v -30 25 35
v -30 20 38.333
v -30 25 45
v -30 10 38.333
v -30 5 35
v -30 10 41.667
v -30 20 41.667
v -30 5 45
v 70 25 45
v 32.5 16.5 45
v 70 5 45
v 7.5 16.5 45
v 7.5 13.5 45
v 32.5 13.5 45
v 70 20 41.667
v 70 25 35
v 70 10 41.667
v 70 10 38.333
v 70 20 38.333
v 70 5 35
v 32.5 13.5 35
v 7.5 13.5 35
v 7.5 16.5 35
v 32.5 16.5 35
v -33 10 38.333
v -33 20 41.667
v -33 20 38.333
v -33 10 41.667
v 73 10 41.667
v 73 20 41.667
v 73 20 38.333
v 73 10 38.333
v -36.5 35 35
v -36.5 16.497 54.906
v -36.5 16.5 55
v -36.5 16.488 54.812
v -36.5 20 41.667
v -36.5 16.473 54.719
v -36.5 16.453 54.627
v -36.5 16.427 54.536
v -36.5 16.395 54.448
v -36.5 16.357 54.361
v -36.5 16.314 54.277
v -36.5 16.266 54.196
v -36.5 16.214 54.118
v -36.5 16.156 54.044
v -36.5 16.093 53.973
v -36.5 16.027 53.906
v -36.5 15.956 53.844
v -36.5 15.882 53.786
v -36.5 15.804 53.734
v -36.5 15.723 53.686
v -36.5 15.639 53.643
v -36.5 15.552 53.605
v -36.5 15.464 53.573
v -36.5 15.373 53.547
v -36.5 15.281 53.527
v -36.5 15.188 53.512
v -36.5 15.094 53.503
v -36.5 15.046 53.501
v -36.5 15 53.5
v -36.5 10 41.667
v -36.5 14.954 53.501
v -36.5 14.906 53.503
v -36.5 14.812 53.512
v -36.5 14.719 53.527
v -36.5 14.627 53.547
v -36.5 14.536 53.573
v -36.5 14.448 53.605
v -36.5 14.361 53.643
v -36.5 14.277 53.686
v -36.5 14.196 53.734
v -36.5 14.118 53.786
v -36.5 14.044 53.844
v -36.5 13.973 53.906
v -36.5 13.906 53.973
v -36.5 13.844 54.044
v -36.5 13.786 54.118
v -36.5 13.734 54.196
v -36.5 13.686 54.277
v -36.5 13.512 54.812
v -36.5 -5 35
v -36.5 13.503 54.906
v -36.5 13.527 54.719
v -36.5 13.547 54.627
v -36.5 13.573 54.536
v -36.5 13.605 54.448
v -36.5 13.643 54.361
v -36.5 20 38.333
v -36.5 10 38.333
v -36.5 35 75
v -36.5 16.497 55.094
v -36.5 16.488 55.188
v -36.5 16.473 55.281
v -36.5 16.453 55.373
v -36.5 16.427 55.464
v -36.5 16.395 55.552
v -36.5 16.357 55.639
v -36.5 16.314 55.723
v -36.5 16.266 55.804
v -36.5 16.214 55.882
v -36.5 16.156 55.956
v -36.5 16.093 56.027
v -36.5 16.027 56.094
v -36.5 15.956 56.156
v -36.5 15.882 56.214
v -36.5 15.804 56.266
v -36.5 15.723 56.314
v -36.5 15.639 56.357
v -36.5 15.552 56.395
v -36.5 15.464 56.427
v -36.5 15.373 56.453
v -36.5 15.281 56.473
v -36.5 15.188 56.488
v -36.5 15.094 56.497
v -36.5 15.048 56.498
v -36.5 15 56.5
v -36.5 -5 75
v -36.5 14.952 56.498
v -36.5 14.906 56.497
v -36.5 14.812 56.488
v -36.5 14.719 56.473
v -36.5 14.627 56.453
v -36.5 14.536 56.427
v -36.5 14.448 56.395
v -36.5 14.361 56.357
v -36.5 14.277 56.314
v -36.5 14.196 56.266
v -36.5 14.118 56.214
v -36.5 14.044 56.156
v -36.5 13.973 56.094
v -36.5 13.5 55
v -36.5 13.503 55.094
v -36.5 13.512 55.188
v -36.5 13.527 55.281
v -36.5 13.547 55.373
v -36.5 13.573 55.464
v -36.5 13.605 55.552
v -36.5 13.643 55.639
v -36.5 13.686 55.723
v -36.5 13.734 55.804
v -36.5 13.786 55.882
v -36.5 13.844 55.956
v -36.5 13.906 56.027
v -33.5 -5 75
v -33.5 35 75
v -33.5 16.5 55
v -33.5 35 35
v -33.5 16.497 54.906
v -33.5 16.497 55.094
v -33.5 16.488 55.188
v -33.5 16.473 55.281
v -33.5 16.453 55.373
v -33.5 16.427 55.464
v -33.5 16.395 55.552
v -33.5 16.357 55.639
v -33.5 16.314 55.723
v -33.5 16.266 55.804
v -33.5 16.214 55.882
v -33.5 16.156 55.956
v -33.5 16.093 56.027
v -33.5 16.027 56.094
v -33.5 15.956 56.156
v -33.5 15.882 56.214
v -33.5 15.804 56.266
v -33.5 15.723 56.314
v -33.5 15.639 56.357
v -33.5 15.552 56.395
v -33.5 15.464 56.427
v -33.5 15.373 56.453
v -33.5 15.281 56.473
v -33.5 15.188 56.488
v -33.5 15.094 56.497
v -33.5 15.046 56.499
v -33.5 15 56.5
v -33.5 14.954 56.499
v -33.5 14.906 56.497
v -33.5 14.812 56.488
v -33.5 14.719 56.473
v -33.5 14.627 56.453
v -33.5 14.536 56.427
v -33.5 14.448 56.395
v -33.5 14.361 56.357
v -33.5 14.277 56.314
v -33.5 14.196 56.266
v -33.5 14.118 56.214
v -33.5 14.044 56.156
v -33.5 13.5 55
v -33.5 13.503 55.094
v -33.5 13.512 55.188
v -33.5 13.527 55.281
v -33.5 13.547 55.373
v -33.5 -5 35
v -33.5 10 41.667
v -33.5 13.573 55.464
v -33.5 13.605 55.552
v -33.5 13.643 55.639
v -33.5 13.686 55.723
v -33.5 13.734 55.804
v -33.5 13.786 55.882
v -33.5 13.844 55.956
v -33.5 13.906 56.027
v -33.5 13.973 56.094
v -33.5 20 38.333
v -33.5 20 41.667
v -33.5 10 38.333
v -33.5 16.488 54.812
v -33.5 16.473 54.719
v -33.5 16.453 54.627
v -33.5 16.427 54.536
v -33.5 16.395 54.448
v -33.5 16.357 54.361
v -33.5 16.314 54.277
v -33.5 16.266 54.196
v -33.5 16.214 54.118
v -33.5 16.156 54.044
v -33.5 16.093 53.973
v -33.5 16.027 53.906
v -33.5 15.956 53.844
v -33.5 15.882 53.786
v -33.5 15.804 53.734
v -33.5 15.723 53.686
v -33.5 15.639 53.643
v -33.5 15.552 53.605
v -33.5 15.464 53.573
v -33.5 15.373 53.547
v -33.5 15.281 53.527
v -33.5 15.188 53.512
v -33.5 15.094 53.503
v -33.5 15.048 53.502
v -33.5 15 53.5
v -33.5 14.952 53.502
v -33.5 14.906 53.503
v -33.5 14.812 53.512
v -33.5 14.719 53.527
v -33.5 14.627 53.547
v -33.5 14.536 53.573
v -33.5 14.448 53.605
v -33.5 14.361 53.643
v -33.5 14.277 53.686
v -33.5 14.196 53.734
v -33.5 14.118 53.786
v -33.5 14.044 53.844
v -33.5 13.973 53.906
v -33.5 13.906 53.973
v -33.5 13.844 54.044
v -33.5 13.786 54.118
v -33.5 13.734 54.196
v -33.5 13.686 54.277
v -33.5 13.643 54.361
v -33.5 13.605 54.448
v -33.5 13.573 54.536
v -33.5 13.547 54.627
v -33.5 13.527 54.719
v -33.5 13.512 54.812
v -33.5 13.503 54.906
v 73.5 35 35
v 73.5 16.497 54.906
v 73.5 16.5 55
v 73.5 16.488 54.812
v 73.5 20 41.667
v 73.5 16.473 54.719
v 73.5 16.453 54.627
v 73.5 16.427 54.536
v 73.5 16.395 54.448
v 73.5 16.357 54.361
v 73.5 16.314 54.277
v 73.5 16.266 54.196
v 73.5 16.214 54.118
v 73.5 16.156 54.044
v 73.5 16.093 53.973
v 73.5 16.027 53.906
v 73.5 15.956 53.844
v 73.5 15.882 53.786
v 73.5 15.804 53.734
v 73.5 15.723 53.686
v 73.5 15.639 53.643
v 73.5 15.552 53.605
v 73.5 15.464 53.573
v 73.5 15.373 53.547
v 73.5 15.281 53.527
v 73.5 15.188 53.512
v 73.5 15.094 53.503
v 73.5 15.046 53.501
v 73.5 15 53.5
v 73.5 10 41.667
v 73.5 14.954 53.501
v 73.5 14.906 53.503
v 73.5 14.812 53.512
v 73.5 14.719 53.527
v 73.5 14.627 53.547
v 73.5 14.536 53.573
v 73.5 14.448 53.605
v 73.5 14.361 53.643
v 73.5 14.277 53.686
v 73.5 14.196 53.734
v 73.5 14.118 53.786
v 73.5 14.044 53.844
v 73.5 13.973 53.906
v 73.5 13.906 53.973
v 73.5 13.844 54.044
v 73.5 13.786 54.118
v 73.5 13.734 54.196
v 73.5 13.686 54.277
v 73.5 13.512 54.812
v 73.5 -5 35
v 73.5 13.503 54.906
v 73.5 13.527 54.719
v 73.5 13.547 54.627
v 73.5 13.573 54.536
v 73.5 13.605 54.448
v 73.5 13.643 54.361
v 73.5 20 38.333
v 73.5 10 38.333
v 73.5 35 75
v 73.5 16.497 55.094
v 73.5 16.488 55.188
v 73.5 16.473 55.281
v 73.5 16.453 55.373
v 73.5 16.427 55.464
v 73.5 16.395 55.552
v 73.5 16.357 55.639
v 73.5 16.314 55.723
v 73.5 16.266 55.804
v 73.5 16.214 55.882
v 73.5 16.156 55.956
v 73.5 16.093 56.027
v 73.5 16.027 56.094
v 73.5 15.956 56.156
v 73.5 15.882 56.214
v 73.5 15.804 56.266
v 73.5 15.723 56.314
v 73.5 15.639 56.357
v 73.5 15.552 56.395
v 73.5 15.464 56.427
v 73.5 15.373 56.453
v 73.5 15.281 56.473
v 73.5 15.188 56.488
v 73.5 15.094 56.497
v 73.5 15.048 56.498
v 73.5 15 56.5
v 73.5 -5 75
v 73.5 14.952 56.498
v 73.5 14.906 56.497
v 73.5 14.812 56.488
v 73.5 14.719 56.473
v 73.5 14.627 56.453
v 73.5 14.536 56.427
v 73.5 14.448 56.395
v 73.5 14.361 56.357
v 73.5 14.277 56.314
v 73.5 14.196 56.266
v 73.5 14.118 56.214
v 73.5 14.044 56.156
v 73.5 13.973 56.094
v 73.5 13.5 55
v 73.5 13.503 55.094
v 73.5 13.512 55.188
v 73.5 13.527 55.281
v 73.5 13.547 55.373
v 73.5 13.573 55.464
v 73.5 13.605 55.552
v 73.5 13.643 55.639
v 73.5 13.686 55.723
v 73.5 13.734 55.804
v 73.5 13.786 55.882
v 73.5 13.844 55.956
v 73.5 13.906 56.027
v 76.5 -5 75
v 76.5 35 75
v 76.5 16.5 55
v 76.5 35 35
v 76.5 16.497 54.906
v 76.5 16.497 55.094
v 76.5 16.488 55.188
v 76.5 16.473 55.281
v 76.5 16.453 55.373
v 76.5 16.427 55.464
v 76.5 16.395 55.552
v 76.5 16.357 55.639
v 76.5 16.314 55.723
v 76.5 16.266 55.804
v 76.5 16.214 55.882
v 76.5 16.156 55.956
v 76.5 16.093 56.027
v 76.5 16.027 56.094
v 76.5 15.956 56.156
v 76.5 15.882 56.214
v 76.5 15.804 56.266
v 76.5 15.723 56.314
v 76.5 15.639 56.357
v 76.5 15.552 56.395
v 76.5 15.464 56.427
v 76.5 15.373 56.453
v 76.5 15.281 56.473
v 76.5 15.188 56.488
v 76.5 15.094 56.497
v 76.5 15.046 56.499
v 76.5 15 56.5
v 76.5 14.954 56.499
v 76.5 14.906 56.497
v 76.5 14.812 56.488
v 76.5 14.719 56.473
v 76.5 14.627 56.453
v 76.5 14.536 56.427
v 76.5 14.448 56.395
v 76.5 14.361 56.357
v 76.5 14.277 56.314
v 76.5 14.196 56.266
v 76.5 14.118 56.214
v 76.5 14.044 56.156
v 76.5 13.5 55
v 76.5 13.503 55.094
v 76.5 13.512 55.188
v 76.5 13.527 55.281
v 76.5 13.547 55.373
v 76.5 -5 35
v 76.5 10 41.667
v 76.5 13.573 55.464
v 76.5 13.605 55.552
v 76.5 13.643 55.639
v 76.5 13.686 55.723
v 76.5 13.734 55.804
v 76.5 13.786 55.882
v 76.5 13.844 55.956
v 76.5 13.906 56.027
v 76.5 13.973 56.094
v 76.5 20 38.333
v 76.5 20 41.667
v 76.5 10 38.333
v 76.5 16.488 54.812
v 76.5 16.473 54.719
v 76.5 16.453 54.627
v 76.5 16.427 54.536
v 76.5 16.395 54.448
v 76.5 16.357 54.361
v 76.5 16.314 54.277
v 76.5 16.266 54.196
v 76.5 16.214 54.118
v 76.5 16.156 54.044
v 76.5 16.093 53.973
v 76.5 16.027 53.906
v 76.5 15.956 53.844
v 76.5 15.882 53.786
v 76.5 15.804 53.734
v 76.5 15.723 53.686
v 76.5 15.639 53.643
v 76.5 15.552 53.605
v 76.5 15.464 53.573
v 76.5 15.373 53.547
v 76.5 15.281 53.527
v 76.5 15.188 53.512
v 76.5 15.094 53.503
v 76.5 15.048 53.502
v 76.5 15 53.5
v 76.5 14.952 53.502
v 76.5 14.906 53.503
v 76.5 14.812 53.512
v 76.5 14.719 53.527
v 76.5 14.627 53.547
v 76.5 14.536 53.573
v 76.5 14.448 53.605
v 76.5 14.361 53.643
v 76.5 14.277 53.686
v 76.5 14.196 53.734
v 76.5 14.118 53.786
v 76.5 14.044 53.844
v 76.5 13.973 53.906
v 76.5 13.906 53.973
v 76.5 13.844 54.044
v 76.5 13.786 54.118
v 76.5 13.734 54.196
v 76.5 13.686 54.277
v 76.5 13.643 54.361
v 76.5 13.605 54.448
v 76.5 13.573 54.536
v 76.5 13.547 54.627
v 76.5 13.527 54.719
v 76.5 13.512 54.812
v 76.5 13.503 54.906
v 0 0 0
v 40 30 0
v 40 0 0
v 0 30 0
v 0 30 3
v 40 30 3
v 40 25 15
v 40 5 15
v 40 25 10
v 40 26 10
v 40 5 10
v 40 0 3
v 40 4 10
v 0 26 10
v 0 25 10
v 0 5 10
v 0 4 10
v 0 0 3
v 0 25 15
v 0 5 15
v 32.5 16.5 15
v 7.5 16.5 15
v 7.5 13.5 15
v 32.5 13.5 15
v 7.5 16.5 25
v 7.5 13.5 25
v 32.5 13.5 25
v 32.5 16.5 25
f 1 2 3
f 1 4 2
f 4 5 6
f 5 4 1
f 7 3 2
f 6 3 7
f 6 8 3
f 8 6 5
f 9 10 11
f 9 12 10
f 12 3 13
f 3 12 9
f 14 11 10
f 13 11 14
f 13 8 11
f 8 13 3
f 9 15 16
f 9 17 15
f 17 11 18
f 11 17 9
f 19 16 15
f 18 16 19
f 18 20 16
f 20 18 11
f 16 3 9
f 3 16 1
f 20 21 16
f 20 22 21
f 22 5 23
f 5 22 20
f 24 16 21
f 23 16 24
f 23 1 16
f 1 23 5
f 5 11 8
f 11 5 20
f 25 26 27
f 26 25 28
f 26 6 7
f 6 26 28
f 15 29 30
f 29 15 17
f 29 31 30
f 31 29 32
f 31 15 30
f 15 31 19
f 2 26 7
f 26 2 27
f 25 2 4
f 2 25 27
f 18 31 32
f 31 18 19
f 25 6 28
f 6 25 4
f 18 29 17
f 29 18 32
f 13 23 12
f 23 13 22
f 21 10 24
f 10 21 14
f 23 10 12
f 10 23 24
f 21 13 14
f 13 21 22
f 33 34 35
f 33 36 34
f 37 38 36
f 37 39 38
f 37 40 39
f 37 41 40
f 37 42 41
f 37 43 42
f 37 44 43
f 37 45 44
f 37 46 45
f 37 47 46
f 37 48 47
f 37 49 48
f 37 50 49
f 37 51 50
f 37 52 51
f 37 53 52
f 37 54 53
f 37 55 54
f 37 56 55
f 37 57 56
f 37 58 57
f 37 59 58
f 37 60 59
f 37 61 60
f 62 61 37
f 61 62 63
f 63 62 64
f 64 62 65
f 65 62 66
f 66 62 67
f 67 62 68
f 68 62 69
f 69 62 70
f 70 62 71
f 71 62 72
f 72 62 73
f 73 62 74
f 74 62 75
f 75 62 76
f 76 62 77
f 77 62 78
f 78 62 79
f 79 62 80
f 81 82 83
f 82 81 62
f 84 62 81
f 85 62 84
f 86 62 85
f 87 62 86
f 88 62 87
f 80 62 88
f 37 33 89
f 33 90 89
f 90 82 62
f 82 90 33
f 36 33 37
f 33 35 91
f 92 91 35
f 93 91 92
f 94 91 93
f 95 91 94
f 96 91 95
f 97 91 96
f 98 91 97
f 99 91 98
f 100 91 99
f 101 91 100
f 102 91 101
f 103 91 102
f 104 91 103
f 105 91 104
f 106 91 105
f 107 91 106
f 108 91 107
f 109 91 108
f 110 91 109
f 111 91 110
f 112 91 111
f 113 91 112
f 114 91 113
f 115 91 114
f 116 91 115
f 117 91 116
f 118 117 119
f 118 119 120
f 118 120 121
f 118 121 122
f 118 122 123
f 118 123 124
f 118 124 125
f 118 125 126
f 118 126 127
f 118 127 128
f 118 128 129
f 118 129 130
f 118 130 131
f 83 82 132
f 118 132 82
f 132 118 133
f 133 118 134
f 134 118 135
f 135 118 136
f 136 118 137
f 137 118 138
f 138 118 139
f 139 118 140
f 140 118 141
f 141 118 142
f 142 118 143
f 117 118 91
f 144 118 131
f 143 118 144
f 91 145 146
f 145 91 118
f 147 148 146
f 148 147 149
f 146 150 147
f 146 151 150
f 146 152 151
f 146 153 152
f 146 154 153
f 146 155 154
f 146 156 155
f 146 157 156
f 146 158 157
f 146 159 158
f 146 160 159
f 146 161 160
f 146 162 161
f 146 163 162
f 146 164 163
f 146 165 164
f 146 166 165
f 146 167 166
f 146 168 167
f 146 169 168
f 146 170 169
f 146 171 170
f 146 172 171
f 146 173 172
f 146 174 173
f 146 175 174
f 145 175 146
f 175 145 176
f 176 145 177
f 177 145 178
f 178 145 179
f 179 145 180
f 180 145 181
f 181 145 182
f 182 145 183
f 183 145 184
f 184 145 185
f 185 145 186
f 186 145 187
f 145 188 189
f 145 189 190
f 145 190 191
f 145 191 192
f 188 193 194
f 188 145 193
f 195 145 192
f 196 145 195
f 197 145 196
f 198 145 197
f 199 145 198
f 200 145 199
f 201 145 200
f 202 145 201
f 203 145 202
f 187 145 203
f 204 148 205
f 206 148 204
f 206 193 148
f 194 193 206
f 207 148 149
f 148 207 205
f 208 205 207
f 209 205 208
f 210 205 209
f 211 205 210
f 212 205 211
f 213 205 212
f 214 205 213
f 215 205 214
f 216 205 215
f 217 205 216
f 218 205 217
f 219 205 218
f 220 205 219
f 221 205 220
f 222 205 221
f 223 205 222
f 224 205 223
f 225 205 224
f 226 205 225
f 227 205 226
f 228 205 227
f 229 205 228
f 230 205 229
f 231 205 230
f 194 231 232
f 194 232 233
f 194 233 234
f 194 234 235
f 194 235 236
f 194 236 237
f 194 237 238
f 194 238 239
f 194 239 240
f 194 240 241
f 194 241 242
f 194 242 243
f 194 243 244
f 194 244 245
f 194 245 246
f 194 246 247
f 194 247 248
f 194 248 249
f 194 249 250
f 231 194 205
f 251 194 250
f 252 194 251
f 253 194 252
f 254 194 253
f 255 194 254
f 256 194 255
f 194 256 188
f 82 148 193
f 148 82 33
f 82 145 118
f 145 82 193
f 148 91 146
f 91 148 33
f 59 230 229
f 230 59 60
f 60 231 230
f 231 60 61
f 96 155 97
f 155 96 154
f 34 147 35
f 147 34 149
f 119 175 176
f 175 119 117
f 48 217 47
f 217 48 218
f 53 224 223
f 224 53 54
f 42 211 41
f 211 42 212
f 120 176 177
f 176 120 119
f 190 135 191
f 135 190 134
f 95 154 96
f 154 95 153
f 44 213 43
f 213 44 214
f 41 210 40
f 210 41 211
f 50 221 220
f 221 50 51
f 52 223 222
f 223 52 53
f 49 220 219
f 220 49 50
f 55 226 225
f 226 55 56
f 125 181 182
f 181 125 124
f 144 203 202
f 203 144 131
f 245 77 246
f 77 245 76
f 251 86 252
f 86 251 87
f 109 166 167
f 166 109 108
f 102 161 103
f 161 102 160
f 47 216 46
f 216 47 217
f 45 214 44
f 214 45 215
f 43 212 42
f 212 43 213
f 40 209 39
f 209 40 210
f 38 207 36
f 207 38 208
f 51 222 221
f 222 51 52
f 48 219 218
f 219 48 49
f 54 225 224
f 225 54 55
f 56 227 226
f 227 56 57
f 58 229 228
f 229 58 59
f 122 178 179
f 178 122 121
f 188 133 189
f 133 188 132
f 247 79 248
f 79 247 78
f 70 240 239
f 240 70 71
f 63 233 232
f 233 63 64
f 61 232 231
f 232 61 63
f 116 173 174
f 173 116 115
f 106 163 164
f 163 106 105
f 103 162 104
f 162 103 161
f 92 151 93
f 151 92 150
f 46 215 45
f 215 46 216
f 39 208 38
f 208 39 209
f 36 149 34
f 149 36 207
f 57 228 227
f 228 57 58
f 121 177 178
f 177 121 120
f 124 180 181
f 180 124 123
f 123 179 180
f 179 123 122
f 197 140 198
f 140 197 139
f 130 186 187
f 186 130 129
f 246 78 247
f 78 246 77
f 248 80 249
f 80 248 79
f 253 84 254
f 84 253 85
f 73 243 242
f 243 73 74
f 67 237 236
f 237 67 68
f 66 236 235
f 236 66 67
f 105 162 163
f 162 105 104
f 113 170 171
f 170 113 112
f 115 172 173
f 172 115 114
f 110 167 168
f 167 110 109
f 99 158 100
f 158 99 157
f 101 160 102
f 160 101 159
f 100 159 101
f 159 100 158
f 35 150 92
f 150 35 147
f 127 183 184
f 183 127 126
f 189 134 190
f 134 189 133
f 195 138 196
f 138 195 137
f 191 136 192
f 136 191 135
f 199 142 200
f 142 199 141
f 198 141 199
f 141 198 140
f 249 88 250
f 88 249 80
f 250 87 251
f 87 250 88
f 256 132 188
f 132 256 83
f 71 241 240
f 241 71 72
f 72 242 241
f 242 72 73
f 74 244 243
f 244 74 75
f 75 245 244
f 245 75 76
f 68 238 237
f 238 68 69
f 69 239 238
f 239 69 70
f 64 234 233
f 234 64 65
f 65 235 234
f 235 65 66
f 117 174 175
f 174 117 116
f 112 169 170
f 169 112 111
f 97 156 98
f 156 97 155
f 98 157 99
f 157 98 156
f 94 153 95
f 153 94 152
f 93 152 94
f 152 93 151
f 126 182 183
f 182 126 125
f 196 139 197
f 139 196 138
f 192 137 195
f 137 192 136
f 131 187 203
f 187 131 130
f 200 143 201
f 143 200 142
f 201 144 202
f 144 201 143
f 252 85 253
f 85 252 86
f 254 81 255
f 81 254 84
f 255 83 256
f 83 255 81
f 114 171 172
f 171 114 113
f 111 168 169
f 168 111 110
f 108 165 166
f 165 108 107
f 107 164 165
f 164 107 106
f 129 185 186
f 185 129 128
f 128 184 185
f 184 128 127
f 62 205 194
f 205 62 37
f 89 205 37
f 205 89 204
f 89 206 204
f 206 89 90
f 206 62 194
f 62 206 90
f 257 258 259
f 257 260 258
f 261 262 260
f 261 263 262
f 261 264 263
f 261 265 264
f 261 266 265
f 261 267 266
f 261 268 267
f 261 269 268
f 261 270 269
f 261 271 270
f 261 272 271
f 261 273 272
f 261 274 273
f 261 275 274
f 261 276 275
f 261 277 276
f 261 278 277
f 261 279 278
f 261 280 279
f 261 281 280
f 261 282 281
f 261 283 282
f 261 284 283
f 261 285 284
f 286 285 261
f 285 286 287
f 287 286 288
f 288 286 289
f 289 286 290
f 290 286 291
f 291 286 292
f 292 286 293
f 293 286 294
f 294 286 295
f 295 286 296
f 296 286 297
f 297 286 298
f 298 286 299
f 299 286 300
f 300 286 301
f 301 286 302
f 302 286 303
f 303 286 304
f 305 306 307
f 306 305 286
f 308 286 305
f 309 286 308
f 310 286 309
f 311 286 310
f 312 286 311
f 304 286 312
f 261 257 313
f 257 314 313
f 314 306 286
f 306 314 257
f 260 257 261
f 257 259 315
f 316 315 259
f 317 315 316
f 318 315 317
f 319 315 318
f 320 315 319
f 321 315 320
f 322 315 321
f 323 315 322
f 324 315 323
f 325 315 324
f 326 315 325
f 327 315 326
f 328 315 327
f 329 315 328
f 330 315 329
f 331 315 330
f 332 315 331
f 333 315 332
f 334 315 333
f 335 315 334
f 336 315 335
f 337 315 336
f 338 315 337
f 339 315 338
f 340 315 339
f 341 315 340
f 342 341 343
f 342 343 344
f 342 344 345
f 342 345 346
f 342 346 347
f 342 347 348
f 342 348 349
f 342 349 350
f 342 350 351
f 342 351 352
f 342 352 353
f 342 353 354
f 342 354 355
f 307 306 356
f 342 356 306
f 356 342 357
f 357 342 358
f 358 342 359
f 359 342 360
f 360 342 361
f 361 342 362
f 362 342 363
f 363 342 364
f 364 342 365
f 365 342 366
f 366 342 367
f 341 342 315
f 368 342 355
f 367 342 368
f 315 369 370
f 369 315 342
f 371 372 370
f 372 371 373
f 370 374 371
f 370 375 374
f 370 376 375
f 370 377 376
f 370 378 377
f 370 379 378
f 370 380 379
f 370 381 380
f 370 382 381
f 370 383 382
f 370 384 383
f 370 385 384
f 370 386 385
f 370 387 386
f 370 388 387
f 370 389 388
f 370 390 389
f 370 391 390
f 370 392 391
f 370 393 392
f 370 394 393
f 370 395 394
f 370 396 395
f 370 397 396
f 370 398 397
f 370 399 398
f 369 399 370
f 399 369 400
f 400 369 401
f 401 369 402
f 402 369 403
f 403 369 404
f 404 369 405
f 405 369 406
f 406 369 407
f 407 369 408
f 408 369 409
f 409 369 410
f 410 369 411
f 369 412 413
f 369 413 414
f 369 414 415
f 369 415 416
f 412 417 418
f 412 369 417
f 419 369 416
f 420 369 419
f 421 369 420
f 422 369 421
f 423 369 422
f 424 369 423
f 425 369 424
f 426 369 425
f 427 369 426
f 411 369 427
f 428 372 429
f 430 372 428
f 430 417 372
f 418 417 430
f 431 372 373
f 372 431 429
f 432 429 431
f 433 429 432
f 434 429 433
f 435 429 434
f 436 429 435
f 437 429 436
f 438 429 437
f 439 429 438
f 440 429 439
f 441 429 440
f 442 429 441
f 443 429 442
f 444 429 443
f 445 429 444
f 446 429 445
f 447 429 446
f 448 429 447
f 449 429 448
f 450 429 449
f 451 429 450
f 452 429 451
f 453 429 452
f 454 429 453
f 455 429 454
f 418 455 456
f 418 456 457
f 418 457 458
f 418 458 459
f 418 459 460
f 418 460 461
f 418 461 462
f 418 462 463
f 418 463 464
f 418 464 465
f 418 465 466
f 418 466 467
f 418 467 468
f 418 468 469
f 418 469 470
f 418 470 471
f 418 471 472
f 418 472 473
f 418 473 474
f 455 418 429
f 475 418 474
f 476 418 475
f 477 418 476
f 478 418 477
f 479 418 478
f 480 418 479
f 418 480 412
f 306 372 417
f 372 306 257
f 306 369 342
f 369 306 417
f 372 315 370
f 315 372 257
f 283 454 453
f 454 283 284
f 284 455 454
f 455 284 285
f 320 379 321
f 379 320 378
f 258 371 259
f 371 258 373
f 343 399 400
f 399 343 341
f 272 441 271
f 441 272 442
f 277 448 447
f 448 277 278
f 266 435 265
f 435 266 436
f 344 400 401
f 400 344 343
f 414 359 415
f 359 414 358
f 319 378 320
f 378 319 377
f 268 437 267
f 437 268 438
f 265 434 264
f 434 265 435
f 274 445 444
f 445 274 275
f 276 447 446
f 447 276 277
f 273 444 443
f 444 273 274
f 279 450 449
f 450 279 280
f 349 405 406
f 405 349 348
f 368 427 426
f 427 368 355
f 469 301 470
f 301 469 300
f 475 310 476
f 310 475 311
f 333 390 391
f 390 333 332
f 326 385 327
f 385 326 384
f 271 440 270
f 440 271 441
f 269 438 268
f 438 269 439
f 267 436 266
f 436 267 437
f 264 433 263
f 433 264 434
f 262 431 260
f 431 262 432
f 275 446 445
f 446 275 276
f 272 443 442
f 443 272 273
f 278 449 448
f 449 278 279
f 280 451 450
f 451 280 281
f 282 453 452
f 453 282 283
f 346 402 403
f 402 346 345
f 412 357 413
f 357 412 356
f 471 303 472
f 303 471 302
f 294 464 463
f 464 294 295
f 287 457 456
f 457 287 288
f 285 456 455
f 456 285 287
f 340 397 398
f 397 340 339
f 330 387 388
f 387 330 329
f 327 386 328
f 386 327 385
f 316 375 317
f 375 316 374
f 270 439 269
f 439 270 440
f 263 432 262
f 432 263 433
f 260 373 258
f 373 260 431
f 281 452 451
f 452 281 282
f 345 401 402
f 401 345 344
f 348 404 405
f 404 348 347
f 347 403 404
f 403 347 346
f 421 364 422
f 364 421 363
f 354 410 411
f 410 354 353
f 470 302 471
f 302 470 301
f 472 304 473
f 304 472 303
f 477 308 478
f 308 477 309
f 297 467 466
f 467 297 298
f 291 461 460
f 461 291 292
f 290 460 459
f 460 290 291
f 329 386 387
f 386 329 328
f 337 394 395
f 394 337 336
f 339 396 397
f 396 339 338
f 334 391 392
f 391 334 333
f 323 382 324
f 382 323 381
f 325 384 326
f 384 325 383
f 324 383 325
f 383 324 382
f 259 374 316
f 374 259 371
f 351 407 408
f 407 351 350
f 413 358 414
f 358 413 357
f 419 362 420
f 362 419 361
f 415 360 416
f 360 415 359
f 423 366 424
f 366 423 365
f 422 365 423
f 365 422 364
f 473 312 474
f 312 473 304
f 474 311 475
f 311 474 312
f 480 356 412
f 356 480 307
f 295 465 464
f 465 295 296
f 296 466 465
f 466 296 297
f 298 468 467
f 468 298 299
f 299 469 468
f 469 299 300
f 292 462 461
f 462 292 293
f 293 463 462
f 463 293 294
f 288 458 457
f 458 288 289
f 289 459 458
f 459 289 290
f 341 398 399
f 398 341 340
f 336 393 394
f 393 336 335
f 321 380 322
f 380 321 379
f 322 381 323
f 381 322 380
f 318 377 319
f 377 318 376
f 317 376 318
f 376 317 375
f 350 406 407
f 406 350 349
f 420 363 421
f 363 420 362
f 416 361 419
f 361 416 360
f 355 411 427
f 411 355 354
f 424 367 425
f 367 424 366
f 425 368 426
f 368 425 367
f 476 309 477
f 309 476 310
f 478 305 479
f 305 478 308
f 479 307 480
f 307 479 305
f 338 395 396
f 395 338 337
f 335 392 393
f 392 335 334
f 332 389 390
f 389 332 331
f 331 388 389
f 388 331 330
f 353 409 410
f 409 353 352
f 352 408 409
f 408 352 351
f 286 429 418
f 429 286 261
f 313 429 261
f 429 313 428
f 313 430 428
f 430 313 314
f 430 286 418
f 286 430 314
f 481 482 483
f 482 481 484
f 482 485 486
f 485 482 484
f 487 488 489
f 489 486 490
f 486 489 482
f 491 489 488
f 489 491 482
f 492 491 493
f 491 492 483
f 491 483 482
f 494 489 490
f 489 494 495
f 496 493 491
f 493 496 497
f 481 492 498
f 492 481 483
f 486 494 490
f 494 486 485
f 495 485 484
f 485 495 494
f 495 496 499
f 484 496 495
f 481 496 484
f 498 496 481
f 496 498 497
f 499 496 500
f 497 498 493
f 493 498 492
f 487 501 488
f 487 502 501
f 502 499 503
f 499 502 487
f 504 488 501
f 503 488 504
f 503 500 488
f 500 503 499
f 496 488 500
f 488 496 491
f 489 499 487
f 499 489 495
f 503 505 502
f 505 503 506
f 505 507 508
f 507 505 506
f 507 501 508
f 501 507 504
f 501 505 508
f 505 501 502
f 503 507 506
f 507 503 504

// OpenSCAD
module aronde(longueur,h1,h_tot,largeur_base,largeur_haut)
{
hauteur_base_1=h1;
hauteur_base_2=h_tot;

dy=(largeur_base-largeur_haut)*0.5;

rotate([90,0,90])
linear_extrude(height=longueur)
{
polygon(points = [[0,0],[largeur_base,0],
                  [largeur_base,hauteur_base_1],
                   [largeur_base-dy,hauteur_base_2],
                  [dy,hauteur_base_2],[0,hauteur_base_1]]);
}
}

// queue d'aronde
h_aronde=10;
L_aronde=40;
largueur_aronde=30;
aronde(L_aronde,3,h_aronde,largueur_aronde,22);

// rehausse
l_tot=100;
longueur_barre = l_tot;
largeur_barre=20;

h_rehausse=5;

dx=-(longueur_barre-L_aronde)/2;
dy=(largueur_aronde-largeur_barre)/2;
ecart=20;
translate([0,dy,h_aronde])  
cube([L_aronde,largeur_barre,h_rehausse]);

// tenon de la rehausse
h_tenon=10;
l_tenon=25;
ep_tenon=3;
tx= L_aronde/2;
ty = largueur_aronde/2;
tz=h_tenon/2+h_rehausse+h_aronde;
translate([tx,ty,tz])
cube([l_tenon,ep_tenon,h_tenon],center=true);


// poutre centrale
translate([0,0,40])
translate([tx,ty,0])
difference()
{
    union()
    {
      cube([longueur_barre,largeur_barre,h_tenon],center=true);
      cube([longueur_barre+2*ep_tenon,largeur_barre/2,h_tenon/3],center=true);
    }
    cube([l_tenon,ep_tenon,h_tenon],center=true);
}

// pieces de bout

module extremite()
{
   difference()
   {
    cube([ep_tenon,40,40],center=true);
    // trou de visee
    rotate([0,90,0])
    cylinder(d=3,h=100,center=true,$fn=100);
    // trou pour le tenon
    translate([0,0,-15])       
   cube([100,largeur_barre/2,h_tenon/3],center=true);
   }
}
translate([-35,largueur_aronde/2,55])
extremite();
translate([+75,largueur_aronde/2,55])
extremite();
